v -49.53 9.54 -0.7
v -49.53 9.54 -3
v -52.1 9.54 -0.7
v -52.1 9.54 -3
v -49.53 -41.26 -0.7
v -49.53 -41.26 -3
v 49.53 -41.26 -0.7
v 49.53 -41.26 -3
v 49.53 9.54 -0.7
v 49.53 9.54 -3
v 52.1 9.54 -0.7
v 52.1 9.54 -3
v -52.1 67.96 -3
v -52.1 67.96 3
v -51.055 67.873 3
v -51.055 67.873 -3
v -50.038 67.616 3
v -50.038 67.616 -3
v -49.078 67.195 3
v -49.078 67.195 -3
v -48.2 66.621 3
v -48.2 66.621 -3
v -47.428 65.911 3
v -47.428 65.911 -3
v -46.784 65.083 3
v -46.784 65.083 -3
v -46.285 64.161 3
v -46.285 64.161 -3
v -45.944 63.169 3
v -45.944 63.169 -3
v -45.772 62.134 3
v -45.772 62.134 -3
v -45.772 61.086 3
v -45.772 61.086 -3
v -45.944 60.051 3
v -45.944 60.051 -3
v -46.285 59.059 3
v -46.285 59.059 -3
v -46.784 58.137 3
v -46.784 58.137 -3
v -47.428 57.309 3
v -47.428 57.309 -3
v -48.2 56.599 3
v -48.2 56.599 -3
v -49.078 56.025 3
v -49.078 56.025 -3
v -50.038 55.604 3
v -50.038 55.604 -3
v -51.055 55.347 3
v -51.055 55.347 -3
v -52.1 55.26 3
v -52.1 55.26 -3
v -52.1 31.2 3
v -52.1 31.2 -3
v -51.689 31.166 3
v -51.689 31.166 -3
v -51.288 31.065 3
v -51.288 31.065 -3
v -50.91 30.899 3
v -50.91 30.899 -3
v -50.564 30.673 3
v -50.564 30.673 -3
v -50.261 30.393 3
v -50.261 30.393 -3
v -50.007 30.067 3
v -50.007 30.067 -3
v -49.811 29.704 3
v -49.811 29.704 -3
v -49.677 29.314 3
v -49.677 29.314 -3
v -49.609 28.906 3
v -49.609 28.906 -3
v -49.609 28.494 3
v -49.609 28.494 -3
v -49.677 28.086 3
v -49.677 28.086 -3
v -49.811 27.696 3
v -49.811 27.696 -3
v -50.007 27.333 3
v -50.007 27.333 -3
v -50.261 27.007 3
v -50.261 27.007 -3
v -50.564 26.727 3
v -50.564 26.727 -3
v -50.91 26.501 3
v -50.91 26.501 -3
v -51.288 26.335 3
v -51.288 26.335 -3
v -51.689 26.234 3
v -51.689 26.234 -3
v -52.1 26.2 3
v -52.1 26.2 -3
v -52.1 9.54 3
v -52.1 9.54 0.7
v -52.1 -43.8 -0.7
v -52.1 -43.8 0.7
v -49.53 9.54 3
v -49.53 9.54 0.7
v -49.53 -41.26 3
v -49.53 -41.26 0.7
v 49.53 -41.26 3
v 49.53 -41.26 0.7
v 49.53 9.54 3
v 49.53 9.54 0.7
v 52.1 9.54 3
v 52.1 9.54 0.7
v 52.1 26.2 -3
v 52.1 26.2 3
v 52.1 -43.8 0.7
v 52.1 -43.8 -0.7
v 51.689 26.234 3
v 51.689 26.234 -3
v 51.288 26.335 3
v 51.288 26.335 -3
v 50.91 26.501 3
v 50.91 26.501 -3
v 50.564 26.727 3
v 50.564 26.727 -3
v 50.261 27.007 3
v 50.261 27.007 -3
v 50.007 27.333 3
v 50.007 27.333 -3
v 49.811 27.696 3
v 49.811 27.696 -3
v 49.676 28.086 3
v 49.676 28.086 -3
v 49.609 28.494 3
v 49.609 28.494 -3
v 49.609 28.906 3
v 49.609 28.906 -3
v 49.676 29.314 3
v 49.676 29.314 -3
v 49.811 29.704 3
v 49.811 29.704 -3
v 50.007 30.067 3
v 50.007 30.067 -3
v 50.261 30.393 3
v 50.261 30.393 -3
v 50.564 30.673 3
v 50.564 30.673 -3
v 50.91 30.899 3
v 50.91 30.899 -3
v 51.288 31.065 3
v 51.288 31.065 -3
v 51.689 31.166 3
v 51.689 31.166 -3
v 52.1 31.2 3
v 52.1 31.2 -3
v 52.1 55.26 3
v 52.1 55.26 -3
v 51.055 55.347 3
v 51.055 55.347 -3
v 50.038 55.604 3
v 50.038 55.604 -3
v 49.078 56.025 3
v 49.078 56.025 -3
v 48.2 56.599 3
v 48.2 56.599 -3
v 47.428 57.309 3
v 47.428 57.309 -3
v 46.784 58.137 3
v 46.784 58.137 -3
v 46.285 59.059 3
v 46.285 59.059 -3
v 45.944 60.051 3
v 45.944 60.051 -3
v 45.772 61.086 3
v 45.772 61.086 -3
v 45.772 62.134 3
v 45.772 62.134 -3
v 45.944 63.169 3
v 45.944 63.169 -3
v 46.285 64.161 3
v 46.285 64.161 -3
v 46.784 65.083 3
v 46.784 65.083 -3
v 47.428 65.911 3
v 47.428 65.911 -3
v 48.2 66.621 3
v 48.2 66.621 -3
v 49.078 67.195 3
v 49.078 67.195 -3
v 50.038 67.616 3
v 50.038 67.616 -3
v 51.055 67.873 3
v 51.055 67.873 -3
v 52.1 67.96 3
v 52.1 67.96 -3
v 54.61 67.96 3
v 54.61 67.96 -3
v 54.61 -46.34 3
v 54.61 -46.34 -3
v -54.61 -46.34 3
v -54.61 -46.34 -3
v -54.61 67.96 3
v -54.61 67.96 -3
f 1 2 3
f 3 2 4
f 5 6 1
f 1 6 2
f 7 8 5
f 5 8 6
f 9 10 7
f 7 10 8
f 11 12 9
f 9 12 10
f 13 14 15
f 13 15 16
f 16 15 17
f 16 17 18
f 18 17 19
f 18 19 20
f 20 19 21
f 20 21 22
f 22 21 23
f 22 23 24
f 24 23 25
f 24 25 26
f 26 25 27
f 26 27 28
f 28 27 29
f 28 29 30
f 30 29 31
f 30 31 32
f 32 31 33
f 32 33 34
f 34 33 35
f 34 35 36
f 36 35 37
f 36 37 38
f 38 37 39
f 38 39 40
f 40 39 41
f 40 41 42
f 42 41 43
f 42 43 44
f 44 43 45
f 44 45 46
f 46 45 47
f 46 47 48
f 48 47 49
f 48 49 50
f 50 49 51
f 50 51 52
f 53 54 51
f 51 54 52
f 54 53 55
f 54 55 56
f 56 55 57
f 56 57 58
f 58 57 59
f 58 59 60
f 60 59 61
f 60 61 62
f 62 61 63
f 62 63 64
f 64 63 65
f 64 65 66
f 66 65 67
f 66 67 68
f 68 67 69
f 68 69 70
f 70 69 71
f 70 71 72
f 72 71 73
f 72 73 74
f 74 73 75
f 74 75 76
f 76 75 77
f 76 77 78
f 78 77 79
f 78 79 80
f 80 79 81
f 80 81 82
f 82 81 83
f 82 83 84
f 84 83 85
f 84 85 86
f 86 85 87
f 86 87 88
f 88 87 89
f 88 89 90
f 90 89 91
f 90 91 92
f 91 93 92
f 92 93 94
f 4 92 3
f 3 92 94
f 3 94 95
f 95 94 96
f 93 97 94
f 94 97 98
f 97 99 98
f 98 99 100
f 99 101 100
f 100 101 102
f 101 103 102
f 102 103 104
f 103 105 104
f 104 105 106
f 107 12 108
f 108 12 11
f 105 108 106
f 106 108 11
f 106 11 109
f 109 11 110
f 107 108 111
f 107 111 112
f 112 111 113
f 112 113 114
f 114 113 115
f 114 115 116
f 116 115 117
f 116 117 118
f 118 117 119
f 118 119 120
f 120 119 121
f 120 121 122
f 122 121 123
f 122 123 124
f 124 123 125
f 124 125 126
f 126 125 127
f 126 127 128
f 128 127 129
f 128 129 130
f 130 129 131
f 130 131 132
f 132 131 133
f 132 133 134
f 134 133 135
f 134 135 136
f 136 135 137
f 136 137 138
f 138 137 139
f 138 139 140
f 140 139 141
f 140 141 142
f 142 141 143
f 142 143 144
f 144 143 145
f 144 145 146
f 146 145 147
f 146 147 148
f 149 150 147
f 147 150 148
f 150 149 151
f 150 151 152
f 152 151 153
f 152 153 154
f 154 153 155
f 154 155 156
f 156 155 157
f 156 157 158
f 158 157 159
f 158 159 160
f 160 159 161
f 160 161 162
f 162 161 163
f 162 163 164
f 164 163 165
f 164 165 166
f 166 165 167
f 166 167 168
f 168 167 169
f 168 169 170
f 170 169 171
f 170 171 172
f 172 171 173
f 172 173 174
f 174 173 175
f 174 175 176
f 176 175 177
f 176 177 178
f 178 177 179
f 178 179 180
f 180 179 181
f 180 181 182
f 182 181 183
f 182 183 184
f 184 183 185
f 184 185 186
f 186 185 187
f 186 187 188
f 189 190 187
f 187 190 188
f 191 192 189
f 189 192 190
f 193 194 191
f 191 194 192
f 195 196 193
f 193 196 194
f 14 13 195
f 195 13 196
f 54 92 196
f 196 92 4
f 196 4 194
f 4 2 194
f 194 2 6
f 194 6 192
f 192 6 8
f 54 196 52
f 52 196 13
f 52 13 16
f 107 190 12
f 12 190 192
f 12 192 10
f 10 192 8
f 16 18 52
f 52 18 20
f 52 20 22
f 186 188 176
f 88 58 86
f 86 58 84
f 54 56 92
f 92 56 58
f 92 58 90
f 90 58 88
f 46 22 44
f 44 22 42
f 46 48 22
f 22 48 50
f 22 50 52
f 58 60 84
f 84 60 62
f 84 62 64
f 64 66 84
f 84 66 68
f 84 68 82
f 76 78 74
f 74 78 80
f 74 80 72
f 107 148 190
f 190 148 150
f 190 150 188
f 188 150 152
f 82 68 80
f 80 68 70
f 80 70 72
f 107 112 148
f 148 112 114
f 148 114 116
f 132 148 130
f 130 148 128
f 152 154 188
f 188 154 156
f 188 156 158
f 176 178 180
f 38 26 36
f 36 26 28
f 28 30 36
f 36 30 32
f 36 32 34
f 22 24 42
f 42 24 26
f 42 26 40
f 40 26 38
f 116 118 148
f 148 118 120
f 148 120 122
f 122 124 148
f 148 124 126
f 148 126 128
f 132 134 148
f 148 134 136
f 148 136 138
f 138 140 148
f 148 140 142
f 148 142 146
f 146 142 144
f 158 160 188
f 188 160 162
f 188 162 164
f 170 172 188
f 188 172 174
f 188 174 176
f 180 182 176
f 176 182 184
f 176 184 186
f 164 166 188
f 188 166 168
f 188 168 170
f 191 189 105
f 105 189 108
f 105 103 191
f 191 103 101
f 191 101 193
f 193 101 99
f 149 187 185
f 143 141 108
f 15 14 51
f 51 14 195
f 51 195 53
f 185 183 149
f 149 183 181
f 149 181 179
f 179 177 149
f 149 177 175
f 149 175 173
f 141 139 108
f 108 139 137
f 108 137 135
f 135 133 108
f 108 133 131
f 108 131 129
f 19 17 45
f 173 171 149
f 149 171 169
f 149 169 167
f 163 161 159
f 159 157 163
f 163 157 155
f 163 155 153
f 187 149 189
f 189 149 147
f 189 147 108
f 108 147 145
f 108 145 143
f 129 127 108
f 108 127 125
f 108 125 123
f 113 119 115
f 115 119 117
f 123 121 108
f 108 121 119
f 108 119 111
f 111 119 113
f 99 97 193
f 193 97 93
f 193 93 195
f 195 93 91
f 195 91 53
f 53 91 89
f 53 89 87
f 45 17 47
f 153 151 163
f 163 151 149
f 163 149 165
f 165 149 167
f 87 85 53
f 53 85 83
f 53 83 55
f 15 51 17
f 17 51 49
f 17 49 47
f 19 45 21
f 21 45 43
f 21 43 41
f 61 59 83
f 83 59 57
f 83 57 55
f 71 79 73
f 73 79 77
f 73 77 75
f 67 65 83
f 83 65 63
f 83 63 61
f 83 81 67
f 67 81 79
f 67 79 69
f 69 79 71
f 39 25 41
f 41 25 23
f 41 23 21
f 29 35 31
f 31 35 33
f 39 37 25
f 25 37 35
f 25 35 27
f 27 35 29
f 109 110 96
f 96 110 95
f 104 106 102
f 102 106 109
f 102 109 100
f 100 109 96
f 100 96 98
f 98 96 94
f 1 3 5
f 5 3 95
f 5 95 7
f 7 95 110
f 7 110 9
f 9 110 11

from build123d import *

# Parameters (mm, degrees)
BOSS_EXTRUDE1_DEPTH      = 3
BOSS_EXTRUDE1_DEPTH_BACK = 3
CUT_EXTRUDE1_DEPTH       = 0.7
CUT_EXTRUDE1_DEPTH_BACK  = 0.7


with BuildPart() as part:
    # Sketch2 → Boss-Extrude1 (new, two sides: drawn at the far end of the back side and taken through both)
    with BuildSketch(Plane.XY.offset(-BOSS_EXTRUDE1_DEPTH_BACK)):
        with BuildLine():
            Line((-52.1, 67.96), (-54.61, 67.96))
            Line((-54.61, 67.96), (-54.61, 9.929230009))
            Line((-54.61, 9.929230009), (-54.61, -46.34))
            Line((-54.61, -46.34), (54.61, -46.34))
            Line((54.61, -46.34), (54.61, 9.929230009))
            Line((54.61, 9.929230009), (54.61, 67.96))
            Line((54.61, 67.96), (52.1, 67.96))
            ThreePointArc((52.1, 67.96), (45.75, 61.61), (52.1, 55.26))
            Line((52.1, 55.26), (52.1, 43.8))
            Line((52.1, 43.8), (52.1, 31.2))
            ThreePointArc((52.1, 31.2), (49.6, 28.7), (52.1, 26.2))
            Line((52.1, 26.2), (52.1, 9.54))
            Line((52.1, 9.54), (49.53, 9.54))
            Line((49.53, 9.54), (49.53, -41.26))
            Line((49.53, -41.26), (-49.53, -41.26))
            Line((-49.53, -41.26), (-49.53, 9.54))
            Line((-49.53, 9.54), (-52.1, 9.54))
            Line((-52.1, 9.54), (-52.1, 26.2))
            ThreePointArc((-52.1, 26.2), (-49.6, 28.7), (-52.1, 31.2))
            Line((-52.1, 31.2), (-52.1, 43.8))
            Line((-52.1, 43.8), (-52.1, 55.26))
            ThreePointArc((-52.1, 55.26), (-45.75, 61.61), (-52.1, 67.96))
        make_face()
    extrude(amount=BOSS_EXTRUDE1_DEPTH + BOSS_EXTRUDE1_DEPTH_BACK)

    # Sketch3 → Cut-Extrude1 (cut, two sides: drawn at the far end of the back side and taken through both)
    with BuildSketch(Plane.XY.offset(-CUT_EXTRUDE1_DEPTH_BACK)):
        Polygon((-52.1, 9.54), (-52.1, -43.8), (52.1, -43.8), (52.1, 9.54), (49.53, 9.54), (-49.53, 9.54), align=None)
    extrude(amount=CUT_EXTRUDE1_DEPTH + CUT_EXTRUDE1_DEPTH_BACK, mode=Mode.SUBTRACT)


solid = part.part
